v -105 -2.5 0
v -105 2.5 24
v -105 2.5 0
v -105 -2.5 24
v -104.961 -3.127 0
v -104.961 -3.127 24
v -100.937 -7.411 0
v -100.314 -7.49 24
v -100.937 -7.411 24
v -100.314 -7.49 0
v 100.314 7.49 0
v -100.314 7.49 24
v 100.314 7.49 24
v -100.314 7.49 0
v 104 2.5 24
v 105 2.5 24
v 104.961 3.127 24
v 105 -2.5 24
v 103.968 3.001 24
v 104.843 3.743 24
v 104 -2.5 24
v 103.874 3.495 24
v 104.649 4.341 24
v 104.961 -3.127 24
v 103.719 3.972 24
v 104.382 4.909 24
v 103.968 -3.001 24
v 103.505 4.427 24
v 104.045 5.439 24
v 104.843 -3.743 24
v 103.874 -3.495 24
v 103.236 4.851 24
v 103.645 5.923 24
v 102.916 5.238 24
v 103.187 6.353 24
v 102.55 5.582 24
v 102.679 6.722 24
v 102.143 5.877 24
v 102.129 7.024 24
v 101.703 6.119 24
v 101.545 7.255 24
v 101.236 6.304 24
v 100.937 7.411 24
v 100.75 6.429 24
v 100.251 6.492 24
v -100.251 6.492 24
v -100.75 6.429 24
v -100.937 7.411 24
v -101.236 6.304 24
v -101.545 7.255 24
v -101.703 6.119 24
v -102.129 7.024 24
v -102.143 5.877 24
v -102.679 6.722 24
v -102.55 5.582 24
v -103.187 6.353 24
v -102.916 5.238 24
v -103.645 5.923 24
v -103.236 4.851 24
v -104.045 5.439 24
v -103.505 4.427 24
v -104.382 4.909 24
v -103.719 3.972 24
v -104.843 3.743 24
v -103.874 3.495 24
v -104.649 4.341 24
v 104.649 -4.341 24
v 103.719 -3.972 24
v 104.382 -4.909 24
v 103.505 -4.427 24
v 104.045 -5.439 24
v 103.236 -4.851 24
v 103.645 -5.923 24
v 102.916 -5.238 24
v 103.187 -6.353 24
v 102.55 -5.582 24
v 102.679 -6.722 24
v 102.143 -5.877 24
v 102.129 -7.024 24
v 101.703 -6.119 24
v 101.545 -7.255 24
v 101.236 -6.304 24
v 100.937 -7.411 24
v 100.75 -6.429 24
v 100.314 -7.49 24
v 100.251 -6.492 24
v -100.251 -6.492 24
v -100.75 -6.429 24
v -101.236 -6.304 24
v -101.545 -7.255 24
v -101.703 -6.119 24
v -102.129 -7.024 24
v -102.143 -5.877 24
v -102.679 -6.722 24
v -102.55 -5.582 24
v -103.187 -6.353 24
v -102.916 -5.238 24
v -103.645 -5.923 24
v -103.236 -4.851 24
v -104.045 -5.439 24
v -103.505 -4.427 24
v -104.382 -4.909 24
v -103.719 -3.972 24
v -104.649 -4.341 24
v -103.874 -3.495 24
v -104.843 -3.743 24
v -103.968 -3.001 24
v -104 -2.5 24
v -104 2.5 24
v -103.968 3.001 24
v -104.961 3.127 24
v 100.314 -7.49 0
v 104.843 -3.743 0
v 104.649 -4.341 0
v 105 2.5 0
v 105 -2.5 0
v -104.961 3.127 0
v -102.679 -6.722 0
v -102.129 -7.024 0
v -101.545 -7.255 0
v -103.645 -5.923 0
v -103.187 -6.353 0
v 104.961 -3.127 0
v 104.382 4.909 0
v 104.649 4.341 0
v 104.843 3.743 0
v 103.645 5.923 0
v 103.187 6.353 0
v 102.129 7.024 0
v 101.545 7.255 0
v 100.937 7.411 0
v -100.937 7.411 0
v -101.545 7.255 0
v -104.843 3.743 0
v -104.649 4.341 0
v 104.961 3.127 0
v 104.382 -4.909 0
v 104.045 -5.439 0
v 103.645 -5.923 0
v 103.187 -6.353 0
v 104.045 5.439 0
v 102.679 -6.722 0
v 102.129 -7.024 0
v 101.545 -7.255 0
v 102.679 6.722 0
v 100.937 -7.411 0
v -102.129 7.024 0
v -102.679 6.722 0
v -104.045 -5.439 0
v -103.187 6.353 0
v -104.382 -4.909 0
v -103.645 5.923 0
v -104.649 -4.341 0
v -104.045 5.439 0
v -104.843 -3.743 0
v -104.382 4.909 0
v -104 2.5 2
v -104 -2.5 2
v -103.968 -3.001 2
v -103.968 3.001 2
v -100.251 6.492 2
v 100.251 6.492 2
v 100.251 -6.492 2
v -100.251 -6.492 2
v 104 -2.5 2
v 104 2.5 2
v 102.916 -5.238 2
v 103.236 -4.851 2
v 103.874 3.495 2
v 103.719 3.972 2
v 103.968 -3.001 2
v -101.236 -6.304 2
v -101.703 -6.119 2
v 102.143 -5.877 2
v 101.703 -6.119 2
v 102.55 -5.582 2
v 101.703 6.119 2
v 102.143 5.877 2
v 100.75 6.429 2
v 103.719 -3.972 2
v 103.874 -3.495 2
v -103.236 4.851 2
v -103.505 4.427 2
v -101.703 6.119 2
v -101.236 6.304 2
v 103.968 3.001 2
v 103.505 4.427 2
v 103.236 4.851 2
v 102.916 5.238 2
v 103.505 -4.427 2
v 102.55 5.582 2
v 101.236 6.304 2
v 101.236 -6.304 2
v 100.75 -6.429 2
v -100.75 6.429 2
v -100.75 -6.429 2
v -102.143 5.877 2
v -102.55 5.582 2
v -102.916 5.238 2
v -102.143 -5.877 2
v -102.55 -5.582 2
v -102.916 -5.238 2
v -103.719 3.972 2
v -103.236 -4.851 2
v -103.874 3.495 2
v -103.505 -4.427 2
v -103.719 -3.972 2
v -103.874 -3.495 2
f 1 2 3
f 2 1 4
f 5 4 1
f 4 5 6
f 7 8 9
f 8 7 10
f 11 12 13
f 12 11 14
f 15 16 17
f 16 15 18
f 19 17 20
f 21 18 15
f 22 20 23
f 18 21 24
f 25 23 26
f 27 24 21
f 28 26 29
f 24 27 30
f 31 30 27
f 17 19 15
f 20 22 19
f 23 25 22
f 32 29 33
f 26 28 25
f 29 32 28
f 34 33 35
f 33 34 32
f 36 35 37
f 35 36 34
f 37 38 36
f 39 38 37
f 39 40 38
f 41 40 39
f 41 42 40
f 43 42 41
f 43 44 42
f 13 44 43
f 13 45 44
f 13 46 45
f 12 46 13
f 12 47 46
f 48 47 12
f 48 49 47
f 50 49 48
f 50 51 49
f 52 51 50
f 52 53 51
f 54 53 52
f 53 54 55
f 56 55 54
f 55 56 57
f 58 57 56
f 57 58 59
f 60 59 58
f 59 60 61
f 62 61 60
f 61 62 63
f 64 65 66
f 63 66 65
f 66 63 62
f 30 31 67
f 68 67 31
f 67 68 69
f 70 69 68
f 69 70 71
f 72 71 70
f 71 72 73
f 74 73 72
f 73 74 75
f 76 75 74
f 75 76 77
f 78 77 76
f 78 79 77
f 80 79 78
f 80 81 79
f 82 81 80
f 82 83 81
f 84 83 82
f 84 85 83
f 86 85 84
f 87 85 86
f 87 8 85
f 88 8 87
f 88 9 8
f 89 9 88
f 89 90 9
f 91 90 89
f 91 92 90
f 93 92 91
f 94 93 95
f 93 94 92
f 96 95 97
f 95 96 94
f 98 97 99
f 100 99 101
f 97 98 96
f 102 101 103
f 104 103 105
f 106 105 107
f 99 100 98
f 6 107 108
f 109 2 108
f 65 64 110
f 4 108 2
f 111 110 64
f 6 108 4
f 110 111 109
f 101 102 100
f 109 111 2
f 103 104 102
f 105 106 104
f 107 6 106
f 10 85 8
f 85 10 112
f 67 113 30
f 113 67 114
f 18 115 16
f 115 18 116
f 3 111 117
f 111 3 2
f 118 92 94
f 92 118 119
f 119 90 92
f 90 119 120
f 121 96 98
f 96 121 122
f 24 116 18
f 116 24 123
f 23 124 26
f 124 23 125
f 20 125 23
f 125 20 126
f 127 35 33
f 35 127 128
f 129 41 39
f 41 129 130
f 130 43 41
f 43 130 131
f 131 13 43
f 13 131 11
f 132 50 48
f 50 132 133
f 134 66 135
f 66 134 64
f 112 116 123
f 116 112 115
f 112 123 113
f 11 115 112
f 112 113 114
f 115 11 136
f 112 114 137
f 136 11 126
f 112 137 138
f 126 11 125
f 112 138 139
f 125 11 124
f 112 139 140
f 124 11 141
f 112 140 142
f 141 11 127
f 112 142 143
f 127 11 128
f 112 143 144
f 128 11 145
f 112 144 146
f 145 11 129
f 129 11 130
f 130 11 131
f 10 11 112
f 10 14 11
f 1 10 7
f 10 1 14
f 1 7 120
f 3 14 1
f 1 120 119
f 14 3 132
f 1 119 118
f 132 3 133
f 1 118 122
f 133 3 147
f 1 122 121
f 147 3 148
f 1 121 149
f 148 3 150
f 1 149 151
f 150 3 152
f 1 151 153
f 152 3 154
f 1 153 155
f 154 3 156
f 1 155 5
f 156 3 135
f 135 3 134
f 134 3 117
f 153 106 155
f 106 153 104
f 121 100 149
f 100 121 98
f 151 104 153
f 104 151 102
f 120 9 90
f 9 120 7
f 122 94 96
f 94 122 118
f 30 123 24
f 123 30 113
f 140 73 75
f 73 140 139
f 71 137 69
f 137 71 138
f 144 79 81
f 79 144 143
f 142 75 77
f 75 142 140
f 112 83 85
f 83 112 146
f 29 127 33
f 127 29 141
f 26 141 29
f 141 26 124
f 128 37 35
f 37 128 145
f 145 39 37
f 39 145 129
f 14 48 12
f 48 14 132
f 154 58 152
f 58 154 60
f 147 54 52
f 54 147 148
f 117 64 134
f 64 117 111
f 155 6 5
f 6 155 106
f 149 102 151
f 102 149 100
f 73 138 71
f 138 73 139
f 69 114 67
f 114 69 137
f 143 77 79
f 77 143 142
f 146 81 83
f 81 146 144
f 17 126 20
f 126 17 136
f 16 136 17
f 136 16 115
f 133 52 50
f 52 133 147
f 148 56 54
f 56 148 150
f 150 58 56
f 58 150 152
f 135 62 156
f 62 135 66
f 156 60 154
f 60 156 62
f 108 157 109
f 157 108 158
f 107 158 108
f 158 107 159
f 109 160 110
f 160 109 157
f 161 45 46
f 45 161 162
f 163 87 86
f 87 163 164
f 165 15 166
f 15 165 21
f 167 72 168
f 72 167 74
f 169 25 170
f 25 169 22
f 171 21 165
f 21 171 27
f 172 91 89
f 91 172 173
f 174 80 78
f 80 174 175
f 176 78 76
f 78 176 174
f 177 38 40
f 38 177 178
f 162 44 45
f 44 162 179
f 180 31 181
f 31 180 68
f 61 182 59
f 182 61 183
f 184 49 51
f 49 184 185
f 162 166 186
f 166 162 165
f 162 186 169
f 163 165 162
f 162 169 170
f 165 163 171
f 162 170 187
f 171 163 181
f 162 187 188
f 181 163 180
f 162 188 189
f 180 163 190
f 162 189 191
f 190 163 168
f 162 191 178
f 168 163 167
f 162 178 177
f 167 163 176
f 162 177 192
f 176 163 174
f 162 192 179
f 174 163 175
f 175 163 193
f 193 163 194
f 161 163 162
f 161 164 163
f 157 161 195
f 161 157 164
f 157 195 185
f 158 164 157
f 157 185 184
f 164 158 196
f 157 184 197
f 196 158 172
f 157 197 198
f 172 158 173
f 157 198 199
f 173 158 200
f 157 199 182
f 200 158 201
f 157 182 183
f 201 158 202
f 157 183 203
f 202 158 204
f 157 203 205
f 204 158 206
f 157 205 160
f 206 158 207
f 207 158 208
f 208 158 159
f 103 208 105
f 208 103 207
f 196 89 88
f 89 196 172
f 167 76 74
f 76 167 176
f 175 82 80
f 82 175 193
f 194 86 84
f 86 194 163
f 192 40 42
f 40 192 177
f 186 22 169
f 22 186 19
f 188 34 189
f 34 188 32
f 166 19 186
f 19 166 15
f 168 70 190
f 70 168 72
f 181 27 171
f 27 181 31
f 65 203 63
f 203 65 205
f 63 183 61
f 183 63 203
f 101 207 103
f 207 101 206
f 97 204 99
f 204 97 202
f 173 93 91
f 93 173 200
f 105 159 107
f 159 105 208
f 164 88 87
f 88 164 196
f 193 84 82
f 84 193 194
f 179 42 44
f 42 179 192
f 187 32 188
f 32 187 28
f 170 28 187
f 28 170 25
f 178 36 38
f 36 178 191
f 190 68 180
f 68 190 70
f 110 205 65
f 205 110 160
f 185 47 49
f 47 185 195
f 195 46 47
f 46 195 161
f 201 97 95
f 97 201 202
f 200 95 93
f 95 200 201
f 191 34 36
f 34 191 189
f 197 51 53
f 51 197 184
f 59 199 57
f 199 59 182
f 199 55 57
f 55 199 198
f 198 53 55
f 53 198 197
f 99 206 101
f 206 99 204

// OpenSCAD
$fn = 50;


difference() {
	union() {
		hull() {
			translate(v = [-100.0000000000, 2.5000000000, 0]) {
				cylinder(h = 24, r = 5);
			}
			translate(v = [100.0000000000, 2.5000000000, 0]) {
				cylinder(h = 24, r = 5);
			}
			translate(v = [-100.0000000000, -2.5000000000, 0]) {
				cylinder(h = 24, r = 5);
			}
			translate(v = [100.0000000000, -2.5000000000, 0]) {
				cylinder(h = 24, r = 5);
			}
		}
	}
	union() {
		translate(v = [0, 0, 2]) {
			hull() {
				translate(v = [-100.0000000000, 2.5000000000, 0]) {
					cylinder(h = 22, r = 4);
				}
				translate(v = [100.0000000000, 2.5000000000, 0]) {
					cylinder(h = 22, r = 4);
				}
				translate(v = [-100.0000000000, -2.5000000000, 0]) {
					cylinder(h = 22, r = 4);
				}
				translate(v = [100.0000000000, -2.5000000000, 0]) {
					cylinder(h = 22, r = 4);
				}
			}
		}
	}
}
